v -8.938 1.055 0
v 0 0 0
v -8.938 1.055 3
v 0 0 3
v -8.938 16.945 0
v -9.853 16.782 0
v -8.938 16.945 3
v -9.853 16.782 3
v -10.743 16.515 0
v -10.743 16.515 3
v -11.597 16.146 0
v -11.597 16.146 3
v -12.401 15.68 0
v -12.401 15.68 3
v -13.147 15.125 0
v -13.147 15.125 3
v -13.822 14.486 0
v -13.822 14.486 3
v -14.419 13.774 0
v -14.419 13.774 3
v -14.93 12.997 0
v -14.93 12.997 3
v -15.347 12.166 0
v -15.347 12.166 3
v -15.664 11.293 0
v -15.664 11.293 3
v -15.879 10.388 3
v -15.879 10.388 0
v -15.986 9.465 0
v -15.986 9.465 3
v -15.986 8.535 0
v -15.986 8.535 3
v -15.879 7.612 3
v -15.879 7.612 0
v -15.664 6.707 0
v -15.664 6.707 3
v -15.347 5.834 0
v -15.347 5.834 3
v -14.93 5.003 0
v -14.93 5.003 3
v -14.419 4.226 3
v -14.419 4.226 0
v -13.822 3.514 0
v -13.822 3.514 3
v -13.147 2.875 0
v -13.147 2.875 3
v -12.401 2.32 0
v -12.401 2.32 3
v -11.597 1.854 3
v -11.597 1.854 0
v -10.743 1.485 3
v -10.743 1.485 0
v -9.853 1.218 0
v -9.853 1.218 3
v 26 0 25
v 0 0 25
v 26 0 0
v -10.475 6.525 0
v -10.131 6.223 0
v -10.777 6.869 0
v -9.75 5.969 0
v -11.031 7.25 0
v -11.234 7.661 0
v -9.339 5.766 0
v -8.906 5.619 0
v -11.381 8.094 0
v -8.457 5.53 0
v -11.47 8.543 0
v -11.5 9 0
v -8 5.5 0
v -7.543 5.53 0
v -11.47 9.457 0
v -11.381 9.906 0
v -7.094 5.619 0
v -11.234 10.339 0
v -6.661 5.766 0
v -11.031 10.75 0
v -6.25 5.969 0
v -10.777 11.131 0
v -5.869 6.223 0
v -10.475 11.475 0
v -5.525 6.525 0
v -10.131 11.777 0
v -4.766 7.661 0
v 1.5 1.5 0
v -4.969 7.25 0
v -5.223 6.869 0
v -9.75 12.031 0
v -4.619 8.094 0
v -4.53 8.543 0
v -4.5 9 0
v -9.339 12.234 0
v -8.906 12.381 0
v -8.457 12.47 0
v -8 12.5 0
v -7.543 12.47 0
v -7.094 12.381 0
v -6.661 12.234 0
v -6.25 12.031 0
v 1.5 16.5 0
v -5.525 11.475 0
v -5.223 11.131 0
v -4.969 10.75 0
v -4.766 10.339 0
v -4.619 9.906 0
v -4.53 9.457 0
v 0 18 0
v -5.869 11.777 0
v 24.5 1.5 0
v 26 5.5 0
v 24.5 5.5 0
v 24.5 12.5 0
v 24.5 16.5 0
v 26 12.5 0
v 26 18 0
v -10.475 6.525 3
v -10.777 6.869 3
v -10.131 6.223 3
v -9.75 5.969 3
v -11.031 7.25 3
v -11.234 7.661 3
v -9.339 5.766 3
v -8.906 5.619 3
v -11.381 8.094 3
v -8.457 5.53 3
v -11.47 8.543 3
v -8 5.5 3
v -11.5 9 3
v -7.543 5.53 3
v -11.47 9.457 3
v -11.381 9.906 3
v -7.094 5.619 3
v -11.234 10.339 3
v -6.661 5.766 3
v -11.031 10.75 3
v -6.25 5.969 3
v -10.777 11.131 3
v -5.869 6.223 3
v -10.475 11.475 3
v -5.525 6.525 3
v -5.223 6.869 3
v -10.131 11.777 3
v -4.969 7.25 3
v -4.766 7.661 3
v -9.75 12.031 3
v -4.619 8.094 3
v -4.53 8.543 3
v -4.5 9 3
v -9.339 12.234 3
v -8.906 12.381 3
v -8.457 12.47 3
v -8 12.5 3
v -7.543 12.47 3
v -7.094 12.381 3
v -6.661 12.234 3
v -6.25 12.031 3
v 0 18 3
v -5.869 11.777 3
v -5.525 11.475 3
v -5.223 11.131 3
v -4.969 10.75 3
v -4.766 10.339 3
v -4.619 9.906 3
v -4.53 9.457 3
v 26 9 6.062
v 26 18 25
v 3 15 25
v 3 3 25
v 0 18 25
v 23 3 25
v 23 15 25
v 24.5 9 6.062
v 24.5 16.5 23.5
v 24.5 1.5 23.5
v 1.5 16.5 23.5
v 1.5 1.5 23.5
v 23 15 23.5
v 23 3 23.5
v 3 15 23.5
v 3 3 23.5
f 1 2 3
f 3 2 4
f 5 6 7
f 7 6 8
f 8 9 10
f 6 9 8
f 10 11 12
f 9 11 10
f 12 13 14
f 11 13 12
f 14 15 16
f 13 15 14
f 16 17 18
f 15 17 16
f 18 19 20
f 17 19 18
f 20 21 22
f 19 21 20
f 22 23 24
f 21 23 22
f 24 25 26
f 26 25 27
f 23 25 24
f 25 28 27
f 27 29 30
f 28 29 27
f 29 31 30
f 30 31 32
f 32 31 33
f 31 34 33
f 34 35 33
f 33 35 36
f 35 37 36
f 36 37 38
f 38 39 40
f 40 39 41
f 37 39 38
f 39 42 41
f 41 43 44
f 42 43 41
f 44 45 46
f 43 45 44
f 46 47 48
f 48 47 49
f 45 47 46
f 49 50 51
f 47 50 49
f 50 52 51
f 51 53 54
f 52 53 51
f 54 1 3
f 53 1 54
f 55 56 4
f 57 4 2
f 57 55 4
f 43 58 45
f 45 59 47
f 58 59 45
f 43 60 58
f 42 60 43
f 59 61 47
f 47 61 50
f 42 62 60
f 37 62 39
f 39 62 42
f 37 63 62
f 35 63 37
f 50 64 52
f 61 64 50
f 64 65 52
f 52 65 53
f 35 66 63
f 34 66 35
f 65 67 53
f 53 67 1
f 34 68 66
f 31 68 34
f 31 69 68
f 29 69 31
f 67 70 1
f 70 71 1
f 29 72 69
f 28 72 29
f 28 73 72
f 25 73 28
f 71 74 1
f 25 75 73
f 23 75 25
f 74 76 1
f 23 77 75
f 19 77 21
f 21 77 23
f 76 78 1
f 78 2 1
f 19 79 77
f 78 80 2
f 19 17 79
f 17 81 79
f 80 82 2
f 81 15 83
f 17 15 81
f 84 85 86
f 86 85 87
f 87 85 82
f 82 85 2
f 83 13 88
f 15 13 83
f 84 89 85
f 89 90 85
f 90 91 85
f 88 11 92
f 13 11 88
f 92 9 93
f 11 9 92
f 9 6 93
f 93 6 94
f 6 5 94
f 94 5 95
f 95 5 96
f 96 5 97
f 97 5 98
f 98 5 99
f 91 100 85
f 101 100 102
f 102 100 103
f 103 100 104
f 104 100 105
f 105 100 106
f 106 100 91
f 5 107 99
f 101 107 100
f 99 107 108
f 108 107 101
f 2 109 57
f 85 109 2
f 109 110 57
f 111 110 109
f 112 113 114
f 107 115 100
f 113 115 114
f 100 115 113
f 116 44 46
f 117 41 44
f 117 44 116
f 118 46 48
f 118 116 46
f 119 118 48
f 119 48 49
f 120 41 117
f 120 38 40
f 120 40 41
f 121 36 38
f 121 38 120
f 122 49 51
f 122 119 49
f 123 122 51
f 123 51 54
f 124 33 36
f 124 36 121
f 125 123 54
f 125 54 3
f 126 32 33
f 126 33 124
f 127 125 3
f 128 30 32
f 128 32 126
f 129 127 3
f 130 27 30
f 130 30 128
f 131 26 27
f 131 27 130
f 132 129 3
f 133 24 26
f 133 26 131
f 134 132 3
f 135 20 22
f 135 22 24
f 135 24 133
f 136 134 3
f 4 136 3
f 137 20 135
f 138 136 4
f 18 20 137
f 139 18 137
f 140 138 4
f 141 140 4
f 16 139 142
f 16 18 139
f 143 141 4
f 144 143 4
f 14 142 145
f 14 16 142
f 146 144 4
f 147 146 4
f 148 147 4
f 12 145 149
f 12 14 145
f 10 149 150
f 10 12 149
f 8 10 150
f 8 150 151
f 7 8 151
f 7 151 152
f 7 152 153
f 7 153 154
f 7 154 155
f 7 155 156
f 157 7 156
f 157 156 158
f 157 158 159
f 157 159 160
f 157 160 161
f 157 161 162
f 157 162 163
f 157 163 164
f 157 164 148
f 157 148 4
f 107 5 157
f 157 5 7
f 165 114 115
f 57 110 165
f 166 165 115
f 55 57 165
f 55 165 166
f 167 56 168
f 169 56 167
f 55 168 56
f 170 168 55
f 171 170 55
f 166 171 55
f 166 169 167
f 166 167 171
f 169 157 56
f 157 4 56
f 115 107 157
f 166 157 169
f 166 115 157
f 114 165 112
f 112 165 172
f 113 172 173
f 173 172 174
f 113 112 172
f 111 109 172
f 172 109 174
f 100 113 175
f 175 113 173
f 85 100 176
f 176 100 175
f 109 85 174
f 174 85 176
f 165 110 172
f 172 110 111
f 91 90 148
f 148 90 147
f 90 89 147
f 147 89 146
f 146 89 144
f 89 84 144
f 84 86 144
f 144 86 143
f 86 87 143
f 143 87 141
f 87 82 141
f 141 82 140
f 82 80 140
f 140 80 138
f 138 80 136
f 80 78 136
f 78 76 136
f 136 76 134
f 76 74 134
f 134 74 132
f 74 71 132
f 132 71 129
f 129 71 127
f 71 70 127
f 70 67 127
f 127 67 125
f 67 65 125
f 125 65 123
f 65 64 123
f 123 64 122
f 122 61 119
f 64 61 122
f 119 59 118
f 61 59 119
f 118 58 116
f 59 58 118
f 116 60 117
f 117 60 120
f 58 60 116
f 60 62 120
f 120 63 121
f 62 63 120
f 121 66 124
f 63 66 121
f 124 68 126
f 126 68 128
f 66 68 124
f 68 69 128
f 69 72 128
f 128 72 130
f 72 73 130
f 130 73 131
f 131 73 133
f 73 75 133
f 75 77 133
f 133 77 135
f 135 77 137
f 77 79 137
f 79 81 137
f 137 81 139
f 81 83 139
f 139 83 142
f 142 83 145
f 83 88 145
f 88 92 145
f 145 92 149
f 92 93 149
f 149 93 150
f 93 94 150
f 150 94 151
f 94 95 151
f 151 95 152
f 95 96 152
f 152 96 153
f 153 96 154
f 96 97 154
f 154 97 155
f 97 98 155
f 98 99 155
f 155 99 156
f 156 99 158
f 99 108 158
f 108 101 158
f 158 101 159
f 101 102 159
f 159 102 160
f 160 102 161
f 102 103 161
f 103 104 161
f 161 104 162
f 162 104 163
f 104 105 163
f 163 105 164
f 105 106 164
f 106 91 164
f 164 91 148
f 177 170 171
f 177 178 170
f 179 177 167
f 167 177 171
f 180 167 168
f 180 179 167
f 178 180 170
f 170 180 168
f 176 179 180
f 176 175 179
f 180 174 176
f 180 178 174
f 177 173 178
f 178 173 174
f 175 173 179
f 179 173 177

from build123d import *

# Parameters (mm, degrees)
PAD_DEPTH       = 3
SKETCH001_W     = 26
SKETCH001_H     = 18
PAD001_DEPTH    = 22
SKETCH002_W     = 23
SKETCH002_H     = 15
POCKET_DEPTH    = 23.5
SKETCH003_W     = 20
SKETCH003_H     = 12
POCKET001_DEPTH = 1.501
SKETCH004_R     = 3.5
POCKET002_DEPTH = 25.001
POCKET003_DEPTH = 1.5


with BuildPart() as part:
    # Sketch → Pad (new body)
    with BuildSketch(Plane.XY):
        with BuildLine():
            Line((0, 0), (26, 0))
            Line((26, 0), (26, 18))
            Line((26, 18), (0, 18))
            Line((0, 18), (-8.937931, 16.944828))
            ThreePointArc((-8.937931, 16.944828), (-16, 9), (-8.937931, 1.055172))
            Line((-8.937931, 1.055172), (0, 0))
        make_face()
    extrude(amount=PAD_DEPTH)

    # Sketch001 (on Face8 of Pad) → Pad001 (join)
    with BuildSketch(Plane.XY.offset(3)):
        with Locations((13, 9)):
            Rectangle(SKETCH001_W, SKETCH001_H)
    extrude(amount=PAD001_DEPTH)

    # Sketch002 (on Face2 of Pad001) → Pocket (cut)
    with BuildSketch(Plane(origin=(0, 0, 0), x_dir=(1, 0, 0), z_dir=(0, 0, -1))):
        with Locations((13, -9)):
            Rectangle(SKETCH002_W, SKETCH002_H)
    extrude(amount=-POCKET_DEPTH, mode=Mode.SUBTRACT)

    # Sketch003 (on Face15 of Pocket) → Pocket001 (cut, through all)
    with BuildSketch(Plane(origin=(0, 0, 23.5), x_dir=(1, 0, 0), z_dir=(0, 0, -1))):
        with Locations((13, -9)):
            Rectangle(SKETCH003_W, SKETCH003_H)
    extrude(amount=-POCKET001_DEPTH, mode=Mode.SUBTRACT)

    # Sketch004 (on Face4 of Pocket001) → Pocket002 (cut, through all)
    with BuildSketch(Plane(origin=(0, 0, 0), x_dir=(1, 0, 0), z_dir=(0, 0, -1))):
        with Locations((-8, -9)):
            Circle(SKETCH004_R)
    extrude(amount=-POCKET002_DEPTH, mode=Mode.SUBTRACT)

    # Sketch005 (on Face7 of Pocket002) → Pocket003 (cut)
    with BuildSketch(Plane.YZ.offset(26)):
        Polygon((12.5, 0), (9, 6.062178), (5.5, 0), align=None)
    extrude(amount=-POCKET003_DEPTH, mode=Mode.SUBTRACT)


solid = part.part
